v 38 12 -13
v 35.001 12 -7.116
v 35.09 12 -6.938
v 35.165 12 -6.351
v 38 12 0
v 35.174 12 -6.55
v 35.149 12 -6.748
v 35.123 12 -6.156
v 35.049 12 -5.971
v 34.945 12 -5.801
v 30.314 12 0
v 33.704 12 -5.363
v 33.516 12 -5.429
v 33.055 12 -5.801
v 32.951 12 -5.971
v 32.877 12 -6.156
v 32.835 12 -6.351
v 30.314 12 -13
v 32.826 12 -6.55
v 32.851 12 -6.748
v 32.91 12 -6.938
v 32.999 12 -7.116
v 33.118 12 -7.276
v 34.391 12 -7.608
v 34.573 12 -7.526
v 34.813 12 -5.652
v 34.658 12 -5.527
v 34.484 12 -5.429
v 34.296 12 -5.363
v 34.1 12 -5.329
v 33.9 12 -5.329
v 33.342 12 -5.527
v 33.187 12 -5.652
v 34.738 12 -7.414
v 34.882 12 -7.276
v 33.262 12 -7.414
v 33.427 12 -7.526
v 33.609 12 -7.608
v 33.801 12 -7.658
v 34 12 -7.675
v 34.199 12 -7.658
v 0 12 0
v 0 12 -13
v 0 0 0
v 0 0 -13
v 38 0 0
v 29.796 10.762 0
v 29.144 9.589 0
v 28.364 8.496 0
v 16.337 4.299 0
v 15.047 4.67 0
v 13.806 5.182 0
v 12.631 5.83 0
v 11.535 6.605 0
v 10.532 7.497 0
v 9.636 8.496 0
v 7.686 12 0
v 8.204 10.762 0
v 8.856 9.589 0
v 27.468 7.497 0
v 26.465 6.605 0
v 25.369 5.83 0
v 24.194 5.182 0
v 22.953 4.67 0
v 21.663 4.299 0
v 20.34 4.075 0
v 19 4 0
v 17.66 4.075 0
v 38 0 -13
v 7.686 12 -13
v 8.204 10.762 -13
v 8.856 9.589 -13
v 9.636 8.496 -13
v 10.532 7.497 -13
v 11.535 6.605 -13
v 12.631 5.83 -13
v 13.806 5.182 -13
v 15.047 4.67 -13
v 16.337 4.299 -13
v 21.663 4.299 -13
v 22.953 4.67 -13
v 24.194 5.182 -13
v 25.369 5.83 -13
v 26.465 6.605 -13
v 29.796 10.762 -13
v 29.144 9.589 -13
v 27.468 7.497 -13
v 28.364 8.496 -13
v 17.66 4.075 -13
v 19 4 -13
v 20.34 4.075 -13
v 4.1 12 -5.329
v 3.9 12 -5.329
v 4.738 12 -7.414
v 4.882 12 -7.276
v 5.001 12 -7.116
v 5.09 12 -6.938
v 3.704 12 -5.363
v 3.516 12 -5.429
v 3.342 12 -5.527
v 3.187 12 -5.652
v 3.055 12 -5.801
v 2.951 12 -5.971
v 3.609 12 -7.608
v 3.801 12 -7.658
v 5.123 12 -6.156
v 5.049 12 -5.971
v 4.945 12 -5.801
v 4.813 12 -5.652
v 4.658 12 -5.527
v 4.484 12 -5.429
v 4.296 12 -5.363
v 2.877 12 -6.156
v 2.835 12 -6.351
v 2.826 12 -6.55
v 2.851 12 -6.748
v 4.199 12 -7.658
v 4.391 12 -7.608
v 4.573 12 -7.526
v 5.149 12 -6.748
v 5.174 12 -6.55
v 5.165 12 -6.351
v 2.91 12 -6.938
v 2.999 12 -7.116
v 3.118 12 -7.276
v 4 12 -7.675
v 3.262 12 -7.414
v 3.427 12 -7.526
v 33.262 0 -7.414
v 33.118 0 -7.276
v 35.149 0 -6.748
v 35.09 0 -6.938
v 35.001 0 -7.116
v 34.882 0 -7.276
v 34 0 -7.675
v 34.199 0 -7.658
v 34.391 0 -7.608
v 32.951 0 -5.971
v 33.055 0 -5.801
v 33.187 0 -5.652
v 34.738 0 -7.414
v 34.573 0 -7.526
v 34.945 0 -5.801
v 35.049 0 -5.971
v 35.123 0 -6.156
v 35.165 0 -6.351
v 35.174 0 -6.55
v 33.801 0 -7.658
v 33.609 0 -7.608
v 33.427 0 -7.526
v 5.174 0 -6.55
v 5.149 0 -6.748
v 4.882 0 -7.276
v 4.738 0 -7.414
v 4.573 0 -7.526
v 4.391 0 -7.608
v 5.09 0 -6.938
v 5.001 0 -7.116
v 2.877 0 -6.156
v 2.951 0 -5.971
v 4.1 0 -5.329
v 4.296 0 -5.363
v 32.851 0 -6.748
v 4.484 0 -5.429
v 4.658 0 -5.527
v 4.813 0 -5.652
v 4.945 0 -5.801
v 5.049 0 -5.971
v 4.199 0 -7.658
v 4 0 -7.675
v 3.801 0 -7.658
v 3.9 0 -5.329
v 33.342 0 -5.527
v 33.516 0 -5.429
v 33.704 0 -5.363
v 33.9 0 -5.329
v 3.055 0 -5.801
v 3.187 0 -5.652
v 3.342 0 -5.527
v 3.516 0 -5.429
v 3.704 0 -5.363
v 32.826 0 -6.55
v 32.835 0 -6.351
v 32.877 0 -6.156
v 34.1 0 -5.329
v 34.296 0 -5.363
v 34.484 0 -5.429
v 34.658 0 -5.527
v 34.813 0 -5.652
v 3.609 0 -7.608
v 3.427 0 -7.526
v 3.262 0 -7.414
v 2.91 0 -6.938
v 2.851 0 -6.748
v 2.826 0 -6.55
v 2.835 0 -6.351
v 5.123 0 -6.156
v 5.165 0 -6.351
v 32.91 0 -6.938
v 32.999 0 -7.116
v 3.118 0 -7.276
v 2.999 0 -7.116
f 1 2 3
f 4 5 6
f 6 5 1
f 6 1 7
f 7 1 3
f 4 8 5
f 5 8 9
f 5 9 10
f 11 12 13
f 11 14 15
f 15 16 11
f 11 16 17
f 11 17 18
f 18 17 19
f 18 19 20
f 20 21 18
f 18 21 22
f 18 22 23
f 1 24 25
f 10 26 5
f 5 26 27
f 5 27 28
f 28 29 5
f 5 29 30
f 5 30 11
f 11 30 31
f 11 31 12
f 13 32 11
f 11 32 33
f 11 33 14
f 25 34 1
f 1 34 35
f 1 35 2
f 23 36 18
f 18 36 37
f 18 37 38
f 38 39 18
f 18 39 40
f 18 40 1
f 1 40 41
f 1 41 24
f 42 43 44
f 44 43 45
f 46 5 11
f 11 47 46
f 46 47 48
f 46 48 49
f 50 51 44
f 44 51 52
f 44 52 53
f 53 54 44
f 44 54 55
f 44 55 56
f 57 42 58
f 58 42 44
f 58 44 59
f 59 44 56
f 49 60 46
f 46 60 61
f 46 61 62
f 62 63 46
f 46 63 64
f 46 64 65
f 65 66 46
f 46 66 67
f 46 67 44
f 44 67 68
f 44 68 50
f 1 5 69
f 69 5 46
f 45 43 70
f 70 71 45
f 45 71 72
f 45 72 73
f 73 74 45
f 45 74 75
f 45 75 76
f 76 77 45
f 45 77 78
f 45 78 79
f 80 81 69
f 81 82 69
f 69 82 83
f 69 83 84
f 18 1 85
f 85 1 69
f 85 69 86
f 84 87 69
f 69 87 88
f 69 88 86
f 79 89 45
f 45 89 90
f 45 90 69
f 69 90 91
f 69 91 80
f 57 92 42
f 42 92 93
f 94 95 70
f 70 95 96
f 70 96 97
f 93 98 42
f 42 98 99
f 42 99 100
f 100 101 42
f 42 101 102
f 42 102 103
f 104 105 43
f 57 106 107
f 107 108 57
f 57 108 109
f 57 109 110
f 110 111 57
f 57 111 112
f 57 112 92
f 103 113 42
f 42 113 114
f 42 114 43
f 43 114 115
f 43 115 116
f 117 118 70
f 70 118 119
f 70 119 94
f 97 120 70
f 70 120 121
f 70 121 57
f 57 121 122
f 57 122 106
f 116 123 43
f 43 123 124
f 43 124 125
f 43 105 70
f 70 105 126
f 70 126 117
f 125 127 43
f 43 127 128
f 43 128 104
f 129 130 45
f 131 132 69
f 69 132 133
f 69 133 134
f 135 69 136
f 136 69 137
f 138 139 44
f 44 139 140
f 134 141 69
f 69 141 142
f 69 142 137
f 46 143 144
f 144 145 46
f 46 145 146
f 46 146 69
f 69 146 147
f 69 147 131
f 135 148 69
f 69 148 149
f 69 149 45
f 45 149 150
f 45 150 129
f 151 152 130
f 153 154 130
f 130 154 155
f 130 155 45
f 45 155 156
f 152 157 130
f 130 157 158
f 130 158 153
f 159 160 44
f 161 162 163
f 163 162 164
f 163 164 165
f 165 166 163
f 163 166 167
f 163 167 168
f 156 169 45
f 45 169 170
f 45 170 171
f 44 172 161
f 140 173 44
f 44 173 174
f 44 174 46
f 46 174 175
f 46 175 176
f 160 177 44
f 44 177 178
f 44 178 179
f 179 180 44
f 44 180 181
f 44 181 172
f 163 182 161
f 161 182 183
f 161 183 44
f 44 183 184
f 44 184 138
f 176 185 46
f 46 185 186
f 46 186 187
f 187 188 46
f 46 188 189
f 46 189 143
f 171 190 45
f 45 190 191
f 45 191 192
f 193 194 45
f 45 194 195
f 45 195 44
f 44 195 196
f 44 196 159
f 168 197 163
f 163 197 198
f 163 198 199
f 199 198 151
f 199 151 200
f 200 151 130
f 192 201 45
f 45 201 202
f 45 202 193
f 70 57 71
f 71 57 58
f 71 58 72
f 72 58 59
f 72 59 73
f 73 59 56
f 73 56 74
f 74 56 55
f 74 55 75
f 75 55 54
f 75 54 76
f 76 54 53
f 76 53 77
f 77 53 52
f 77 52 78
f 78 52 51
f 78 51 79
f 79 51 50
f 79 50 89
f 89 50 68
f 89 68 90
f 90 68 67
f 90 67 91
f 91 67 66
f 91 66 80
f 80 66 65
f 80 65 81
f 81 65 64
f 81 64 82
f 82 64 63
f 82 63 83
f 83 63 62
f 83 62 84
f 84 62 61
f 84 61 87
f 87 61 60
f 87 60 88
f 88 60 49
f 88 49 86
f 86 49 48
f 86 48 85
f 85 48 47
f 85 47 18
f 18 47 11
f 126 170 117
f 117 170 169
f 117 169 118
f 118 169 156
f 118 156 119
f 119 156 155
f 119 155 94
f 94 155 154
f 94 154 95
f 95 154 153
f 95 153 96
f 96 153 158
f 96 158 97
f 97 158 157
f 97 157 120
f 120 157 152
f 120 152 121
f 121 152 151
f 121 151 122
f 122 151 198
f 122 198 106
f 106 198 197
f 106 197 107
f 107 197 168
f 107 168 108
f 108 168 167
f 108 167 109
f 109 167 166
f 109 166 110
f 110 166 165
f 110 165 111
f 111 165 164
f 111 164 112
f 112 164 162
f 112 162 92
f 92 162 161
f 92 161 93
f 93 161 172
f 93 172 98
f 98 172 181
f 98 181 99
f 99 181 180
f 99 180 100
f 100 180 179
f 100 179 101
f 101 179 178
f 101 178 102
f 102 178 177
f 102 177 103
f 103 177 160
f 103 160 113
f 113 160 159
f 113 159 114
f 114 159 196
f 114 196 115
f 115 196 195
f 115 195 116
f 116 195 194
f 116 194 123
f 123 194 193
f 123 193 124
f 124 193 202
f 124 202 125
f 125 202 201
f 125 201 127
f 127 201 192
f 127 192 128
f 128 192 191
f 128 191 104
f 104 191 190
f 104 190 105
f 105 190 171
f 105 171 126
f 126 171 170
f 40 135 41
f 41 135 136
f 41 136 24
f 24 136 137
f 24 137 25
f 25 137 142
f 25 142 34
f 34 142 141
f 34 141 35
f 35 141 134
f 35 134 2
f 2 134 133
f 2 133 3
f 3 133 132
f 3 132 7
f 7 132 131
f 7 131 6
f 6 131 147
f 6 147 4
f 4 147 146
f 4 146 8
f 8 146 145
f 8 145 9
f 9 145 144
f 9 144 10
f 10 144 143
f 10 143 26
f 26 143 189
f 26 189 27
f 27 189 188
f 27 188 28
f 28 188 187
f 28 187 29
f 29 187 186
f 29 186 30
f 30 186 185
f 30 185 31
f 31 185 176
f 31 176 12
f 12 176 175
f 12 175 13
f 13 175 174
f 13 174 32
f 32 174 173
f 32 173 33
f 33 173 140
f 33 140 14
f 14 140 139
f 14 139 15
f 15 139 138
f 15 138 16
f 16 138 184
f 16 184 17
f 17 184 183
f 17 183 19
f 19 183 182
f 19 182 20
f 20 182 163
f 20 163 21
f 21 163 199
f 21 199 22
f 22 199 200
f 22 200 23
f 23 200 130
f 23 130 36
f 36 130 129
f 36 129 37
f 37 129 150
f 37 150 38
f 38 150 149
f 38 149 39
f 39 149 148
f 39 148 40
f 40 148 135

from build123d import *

# Parameters (mm, degrees)
SKETCH1_W           = 38
SKETCH1_H           = 13
BOSS_EXTRUDE1_DEPTH = 12
SKETCH2_R           = 12
CUT_EXTRUDE1_DEPTH  = 13
HOLE1_D             = 2.35


with BuildPart() as part:
    # Sketch1 → Boss-Extrude1 (new body)
    with BuildSketch(Plane(origin=(0, 0, 0), x_dir=(1, 0, 0), z_dir=(0, 1, 0))):
        with Locations((19, 6.5)):
            Rectangle(SKETCH1_W, SKETCH1_H)
    extrude(amount=BOSS_EXTRUDE1_DEPTH)

    # Sketch2 → Cut-Extrude1 (cut)
    with BuildSketch(Plane.XY):
        with Locations((19, 16)):
            Circle(SKETCH2_R)
    extrude(amount=-CUT_EXTRUDE1_DEPTH, mode=Mode.SUBTRACT)

    # Hole1 (through all)
    with Locations(Plane(origin=(0, 0, 0), x_dir=(-1, 0, 0), z_dir=(0, -1, 0))):
        with Locations((-34, 6.5), (-4, 6.5)):
            Hole(HOLE1_D / 2)


solid = part.part
